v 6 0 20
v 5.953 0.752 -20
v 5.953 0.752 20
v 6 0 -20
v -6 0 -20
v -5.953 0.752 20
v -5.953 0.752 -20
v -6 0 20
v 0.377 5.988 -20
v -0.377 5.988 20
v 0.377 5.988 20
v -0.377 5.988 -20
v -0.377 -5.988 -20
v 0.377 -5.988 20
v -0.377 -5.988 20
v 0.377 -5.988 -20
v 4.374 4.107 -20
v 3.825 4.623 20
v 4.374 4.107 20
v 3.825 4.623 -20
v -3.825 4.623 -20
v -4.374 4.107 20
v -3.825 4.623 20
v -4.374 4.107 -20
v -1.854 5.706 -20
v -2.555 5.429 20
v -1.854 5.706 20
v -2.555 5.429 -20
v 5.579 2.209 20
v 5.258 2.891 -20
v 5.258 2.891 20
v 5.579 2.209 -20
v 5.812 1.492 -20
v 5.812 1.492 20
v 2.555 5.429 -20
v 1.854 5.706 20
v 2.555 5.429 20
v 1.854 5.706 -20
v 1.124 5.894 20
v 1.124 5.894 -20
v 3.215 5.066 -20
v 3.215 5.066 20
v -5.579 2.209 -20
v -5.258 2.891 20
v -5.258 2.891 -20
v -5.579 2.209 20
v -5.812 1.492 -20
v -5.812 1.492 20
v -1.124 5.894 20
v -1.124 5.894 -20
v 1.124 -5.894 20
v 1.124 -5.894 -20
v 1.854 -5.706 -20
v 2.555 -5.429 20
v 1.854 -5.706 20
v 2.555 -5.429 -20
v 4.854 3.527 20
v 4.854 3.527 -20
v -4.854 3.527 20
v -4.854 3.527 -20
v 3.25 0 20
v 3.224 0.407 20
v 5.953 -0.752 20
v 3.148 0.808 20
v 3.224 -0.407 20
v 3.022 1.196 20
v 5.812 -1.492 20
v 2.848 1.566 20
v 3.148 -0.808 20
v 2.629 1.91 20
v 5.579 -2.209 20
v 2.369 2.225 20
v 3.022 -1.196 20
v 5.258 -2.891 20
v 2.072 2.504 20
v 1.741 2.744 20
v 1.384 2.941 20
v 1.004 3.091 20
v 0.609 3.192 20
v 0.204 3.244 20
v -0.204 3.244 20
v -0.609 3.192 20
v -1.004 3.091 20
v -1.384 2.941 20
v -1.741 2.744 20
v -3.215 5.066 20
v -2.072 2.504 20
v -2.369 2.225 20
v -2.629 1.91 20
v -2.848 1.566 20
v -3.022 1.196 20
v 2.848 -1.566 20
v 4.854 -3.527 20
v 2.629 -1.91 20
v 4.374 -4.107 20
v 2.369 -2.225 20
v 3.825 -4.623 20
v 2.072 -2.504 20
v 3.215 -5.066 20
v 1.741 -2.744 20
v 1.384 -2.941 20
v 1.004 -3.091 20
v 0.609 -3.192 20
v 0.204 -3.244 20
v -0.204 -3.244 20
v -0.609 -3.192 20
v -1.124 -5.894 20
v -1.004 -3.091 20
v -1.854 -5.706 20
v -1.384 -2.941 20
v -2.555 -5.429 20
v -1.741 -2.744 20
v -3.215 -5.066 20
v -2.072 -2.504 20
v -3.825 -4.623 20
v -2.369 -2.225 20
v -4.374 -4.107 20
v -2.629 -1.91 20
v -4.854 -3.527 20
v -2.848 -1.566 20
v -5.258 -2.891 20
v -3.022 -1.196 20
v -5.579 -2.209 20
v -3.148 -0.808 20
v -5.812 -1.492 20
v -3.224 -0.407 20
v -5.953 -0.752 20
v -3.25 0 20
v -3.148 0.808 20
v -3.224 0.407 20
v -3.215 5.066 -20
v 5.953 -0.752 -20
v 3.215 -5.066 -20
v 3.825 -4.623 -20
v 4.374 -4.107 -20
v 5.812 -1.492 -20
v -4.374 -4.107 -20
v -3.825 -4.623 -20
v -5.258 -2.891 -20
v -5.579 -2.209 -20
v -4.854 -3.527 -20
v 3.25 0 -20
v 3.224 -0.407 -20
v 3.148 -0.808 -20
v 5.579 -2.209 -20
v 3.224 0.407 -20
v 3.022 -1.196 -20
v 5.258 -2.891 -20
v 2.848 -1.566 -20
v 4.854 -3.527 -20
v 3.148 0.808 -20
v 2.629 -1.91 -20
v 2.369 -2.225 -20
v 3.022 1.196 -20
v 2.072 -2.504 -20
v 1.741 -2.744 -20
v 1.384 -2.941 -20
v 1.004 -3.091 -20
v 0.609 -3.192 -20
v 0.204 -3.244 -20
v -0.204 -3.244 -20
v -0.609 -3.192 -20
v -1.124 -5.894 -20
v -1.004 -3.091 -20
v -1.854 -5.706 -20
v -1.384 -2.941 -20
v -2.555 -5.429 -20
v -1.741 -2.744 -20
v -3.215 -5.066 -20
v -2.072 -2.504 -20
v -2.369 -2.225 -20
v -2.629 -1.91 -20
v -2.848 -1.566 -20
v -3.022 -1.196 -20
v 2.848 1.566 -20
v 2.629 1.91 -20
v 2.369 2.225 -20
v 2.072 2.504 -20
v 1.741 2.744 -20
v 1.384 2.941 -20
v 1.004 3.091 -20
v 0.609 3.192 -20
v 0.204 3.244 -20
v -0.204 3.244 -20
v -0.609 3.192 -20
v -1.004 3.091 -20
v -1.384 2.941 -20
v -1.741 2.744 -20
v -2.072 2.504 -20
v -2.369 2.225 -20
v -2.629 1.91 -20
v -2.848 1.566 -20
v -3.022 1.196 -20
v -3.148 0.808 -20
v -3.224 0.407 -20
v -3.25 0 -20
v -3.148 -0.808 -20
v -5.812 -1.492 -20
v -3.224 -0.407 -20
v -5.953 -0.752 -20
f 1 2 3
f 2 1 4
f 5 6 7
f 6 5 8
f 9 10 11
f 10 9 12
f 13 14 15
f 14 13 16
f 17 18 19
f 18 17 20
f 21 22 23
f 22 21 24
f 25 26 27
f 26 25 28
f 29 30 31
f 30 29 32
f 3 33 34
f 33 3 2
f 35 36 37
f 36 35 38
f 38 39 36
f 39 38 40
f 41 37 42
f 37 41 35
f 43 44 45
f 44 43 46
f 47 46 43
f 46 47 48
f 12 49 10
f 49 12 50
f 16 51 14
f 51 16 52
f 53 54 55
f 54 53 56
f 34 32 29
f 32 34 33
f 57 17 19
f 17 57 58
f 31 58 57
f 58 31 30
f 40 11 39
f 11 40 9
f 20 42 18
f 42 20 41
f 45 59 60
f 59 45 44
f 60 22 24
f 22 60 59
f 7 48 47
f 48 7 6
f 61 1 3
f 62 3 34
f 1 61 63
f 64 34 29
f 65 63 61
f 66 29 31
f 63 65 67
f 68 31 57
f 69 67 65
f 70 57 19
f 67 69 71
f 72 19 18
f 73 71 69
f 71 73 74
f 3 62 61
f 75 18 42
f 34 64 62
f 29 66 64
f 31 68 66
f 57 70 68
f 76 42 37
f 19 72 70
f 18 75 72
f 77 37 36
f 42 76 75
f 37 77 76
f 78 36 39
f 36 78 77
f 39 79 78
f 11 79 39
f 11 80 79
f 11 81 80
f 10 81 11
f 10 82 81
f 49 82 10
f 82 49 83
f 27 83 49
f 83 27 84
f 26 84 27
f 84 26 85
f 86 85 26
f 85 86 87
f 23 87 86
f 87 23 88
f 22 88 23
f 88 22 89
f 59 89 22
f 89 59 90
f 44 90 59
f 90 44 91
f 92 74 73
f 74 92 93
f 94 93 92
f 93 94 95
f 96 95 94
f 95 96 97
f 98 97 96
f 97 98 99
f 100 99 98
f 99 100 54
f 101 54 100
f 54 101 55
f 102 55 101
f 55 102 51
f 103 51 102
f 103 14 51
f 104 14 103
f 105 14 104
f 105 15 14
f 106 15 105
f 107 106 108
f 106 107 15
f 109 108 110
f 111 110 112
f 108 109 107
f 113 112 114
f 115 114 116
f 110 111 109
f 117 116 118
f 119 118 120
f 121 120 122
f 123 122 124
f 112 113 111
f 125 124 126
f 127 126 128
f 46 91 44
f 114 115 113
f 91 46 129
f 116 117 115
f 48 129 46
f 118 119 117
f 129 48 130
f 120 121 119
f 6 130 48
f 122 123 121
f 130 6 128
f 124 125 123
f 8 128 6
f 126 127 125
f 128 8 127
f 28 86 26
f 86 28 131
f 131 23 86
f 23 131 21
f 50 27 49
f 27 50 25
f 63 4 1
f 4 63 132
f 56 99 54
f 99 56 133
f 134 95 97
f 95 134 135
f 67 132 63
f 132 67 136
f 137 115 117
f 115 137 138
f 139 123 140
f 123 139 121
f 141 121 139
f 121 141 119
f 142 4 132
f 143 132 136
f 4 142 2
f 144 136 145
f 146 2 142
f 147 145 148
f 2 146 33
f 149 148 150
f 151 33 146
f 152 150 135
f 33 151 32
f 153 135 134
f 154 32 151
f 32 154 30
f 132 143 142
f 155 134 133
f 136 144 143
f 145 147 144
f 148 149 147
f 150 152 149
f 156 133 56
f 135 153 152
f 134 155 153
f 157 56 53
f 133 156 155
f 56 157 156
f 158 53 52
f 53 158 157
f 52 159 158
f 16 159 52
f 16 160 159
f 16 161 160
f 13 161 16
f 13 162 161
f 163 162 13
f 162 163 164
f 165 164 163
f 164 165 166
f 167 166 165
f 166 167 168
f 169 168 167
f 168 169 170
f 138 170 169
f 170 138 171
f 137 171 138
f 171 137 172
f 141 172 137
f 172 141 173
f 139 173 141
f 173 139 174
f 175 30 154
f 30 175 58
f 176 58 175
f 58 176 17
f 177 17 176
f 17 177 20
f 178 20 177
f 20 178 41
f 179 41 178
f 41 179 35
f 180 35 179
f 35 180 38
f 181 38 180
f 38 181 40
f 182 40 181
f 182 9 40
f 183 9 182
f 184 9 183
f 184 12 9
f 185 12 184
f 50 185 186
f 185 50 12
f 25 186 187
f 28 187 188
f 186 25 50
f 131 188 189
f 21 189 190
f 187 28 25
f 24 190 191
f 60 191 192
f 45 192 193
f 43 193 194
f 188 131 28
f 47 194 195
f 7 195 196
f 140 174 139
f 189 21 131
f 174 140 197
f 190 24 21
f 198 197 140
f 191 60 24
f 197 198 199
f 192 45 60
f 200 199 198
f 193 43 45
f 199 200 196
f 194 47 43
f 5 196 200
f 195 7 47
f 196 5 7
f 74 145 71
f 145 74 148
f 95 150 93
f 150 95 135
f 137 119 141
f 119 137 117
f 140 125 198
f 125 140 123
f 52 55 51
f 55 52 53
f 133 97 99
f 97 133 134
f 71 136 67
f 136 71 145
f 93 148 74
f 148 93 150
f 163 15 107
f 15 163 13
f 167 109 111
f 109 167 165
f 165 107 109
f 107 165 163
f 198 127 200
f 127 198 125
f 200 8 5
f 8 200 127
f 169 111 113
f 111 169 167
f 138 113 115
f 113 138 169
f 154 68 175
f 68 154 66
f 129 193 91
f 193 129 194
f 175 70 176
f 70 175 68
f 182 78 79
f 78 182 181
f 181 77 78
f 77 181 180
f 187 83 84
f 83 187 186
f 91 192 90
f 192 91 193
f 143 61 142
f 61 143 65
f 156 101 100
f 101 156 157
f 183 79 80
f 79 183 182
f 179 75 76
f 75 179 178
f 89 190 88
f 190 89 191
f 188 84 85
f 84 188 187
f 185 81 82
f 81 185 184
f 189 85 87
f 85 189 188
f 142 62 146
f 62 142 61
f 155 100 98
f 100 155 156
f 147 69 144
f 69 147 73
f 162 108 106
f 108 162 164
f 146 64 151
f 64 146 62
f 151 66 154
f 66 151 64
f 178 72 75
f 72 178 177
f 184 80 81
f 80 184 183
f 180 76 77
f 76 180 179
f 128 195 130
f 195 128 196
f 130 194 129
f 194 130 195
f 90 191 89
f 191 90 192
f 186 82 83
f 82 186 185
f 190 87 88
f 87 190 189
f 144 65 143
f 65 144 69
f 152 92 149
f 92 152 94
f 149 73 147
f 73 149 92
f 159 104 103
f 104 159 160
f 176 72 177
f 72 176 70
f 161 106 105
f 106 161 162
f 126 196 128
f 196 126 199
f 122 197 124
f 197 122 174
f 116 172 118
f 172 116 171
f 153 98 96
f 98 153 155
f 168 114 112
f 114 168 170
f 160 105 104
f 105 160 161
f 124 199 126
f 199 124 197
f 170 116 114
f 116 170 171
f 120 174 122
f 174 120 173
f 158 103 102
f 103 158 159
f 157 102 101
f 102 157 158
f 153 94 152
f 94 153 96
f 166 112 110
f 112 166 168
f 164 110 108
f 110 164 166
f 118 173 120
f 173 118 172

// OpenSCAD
$fn = 50;


difference() {
	union() {
		translate(v = [0, 0, -20.0000000000]) {
			cylinder(h = 40, r = 6.0000000000);
		}
	}
	union() {
		translate(v = [0, 0, -100.0000000000]) {
			cylinder(h = 200, r = 3.2500000000);
		}
	}
}
